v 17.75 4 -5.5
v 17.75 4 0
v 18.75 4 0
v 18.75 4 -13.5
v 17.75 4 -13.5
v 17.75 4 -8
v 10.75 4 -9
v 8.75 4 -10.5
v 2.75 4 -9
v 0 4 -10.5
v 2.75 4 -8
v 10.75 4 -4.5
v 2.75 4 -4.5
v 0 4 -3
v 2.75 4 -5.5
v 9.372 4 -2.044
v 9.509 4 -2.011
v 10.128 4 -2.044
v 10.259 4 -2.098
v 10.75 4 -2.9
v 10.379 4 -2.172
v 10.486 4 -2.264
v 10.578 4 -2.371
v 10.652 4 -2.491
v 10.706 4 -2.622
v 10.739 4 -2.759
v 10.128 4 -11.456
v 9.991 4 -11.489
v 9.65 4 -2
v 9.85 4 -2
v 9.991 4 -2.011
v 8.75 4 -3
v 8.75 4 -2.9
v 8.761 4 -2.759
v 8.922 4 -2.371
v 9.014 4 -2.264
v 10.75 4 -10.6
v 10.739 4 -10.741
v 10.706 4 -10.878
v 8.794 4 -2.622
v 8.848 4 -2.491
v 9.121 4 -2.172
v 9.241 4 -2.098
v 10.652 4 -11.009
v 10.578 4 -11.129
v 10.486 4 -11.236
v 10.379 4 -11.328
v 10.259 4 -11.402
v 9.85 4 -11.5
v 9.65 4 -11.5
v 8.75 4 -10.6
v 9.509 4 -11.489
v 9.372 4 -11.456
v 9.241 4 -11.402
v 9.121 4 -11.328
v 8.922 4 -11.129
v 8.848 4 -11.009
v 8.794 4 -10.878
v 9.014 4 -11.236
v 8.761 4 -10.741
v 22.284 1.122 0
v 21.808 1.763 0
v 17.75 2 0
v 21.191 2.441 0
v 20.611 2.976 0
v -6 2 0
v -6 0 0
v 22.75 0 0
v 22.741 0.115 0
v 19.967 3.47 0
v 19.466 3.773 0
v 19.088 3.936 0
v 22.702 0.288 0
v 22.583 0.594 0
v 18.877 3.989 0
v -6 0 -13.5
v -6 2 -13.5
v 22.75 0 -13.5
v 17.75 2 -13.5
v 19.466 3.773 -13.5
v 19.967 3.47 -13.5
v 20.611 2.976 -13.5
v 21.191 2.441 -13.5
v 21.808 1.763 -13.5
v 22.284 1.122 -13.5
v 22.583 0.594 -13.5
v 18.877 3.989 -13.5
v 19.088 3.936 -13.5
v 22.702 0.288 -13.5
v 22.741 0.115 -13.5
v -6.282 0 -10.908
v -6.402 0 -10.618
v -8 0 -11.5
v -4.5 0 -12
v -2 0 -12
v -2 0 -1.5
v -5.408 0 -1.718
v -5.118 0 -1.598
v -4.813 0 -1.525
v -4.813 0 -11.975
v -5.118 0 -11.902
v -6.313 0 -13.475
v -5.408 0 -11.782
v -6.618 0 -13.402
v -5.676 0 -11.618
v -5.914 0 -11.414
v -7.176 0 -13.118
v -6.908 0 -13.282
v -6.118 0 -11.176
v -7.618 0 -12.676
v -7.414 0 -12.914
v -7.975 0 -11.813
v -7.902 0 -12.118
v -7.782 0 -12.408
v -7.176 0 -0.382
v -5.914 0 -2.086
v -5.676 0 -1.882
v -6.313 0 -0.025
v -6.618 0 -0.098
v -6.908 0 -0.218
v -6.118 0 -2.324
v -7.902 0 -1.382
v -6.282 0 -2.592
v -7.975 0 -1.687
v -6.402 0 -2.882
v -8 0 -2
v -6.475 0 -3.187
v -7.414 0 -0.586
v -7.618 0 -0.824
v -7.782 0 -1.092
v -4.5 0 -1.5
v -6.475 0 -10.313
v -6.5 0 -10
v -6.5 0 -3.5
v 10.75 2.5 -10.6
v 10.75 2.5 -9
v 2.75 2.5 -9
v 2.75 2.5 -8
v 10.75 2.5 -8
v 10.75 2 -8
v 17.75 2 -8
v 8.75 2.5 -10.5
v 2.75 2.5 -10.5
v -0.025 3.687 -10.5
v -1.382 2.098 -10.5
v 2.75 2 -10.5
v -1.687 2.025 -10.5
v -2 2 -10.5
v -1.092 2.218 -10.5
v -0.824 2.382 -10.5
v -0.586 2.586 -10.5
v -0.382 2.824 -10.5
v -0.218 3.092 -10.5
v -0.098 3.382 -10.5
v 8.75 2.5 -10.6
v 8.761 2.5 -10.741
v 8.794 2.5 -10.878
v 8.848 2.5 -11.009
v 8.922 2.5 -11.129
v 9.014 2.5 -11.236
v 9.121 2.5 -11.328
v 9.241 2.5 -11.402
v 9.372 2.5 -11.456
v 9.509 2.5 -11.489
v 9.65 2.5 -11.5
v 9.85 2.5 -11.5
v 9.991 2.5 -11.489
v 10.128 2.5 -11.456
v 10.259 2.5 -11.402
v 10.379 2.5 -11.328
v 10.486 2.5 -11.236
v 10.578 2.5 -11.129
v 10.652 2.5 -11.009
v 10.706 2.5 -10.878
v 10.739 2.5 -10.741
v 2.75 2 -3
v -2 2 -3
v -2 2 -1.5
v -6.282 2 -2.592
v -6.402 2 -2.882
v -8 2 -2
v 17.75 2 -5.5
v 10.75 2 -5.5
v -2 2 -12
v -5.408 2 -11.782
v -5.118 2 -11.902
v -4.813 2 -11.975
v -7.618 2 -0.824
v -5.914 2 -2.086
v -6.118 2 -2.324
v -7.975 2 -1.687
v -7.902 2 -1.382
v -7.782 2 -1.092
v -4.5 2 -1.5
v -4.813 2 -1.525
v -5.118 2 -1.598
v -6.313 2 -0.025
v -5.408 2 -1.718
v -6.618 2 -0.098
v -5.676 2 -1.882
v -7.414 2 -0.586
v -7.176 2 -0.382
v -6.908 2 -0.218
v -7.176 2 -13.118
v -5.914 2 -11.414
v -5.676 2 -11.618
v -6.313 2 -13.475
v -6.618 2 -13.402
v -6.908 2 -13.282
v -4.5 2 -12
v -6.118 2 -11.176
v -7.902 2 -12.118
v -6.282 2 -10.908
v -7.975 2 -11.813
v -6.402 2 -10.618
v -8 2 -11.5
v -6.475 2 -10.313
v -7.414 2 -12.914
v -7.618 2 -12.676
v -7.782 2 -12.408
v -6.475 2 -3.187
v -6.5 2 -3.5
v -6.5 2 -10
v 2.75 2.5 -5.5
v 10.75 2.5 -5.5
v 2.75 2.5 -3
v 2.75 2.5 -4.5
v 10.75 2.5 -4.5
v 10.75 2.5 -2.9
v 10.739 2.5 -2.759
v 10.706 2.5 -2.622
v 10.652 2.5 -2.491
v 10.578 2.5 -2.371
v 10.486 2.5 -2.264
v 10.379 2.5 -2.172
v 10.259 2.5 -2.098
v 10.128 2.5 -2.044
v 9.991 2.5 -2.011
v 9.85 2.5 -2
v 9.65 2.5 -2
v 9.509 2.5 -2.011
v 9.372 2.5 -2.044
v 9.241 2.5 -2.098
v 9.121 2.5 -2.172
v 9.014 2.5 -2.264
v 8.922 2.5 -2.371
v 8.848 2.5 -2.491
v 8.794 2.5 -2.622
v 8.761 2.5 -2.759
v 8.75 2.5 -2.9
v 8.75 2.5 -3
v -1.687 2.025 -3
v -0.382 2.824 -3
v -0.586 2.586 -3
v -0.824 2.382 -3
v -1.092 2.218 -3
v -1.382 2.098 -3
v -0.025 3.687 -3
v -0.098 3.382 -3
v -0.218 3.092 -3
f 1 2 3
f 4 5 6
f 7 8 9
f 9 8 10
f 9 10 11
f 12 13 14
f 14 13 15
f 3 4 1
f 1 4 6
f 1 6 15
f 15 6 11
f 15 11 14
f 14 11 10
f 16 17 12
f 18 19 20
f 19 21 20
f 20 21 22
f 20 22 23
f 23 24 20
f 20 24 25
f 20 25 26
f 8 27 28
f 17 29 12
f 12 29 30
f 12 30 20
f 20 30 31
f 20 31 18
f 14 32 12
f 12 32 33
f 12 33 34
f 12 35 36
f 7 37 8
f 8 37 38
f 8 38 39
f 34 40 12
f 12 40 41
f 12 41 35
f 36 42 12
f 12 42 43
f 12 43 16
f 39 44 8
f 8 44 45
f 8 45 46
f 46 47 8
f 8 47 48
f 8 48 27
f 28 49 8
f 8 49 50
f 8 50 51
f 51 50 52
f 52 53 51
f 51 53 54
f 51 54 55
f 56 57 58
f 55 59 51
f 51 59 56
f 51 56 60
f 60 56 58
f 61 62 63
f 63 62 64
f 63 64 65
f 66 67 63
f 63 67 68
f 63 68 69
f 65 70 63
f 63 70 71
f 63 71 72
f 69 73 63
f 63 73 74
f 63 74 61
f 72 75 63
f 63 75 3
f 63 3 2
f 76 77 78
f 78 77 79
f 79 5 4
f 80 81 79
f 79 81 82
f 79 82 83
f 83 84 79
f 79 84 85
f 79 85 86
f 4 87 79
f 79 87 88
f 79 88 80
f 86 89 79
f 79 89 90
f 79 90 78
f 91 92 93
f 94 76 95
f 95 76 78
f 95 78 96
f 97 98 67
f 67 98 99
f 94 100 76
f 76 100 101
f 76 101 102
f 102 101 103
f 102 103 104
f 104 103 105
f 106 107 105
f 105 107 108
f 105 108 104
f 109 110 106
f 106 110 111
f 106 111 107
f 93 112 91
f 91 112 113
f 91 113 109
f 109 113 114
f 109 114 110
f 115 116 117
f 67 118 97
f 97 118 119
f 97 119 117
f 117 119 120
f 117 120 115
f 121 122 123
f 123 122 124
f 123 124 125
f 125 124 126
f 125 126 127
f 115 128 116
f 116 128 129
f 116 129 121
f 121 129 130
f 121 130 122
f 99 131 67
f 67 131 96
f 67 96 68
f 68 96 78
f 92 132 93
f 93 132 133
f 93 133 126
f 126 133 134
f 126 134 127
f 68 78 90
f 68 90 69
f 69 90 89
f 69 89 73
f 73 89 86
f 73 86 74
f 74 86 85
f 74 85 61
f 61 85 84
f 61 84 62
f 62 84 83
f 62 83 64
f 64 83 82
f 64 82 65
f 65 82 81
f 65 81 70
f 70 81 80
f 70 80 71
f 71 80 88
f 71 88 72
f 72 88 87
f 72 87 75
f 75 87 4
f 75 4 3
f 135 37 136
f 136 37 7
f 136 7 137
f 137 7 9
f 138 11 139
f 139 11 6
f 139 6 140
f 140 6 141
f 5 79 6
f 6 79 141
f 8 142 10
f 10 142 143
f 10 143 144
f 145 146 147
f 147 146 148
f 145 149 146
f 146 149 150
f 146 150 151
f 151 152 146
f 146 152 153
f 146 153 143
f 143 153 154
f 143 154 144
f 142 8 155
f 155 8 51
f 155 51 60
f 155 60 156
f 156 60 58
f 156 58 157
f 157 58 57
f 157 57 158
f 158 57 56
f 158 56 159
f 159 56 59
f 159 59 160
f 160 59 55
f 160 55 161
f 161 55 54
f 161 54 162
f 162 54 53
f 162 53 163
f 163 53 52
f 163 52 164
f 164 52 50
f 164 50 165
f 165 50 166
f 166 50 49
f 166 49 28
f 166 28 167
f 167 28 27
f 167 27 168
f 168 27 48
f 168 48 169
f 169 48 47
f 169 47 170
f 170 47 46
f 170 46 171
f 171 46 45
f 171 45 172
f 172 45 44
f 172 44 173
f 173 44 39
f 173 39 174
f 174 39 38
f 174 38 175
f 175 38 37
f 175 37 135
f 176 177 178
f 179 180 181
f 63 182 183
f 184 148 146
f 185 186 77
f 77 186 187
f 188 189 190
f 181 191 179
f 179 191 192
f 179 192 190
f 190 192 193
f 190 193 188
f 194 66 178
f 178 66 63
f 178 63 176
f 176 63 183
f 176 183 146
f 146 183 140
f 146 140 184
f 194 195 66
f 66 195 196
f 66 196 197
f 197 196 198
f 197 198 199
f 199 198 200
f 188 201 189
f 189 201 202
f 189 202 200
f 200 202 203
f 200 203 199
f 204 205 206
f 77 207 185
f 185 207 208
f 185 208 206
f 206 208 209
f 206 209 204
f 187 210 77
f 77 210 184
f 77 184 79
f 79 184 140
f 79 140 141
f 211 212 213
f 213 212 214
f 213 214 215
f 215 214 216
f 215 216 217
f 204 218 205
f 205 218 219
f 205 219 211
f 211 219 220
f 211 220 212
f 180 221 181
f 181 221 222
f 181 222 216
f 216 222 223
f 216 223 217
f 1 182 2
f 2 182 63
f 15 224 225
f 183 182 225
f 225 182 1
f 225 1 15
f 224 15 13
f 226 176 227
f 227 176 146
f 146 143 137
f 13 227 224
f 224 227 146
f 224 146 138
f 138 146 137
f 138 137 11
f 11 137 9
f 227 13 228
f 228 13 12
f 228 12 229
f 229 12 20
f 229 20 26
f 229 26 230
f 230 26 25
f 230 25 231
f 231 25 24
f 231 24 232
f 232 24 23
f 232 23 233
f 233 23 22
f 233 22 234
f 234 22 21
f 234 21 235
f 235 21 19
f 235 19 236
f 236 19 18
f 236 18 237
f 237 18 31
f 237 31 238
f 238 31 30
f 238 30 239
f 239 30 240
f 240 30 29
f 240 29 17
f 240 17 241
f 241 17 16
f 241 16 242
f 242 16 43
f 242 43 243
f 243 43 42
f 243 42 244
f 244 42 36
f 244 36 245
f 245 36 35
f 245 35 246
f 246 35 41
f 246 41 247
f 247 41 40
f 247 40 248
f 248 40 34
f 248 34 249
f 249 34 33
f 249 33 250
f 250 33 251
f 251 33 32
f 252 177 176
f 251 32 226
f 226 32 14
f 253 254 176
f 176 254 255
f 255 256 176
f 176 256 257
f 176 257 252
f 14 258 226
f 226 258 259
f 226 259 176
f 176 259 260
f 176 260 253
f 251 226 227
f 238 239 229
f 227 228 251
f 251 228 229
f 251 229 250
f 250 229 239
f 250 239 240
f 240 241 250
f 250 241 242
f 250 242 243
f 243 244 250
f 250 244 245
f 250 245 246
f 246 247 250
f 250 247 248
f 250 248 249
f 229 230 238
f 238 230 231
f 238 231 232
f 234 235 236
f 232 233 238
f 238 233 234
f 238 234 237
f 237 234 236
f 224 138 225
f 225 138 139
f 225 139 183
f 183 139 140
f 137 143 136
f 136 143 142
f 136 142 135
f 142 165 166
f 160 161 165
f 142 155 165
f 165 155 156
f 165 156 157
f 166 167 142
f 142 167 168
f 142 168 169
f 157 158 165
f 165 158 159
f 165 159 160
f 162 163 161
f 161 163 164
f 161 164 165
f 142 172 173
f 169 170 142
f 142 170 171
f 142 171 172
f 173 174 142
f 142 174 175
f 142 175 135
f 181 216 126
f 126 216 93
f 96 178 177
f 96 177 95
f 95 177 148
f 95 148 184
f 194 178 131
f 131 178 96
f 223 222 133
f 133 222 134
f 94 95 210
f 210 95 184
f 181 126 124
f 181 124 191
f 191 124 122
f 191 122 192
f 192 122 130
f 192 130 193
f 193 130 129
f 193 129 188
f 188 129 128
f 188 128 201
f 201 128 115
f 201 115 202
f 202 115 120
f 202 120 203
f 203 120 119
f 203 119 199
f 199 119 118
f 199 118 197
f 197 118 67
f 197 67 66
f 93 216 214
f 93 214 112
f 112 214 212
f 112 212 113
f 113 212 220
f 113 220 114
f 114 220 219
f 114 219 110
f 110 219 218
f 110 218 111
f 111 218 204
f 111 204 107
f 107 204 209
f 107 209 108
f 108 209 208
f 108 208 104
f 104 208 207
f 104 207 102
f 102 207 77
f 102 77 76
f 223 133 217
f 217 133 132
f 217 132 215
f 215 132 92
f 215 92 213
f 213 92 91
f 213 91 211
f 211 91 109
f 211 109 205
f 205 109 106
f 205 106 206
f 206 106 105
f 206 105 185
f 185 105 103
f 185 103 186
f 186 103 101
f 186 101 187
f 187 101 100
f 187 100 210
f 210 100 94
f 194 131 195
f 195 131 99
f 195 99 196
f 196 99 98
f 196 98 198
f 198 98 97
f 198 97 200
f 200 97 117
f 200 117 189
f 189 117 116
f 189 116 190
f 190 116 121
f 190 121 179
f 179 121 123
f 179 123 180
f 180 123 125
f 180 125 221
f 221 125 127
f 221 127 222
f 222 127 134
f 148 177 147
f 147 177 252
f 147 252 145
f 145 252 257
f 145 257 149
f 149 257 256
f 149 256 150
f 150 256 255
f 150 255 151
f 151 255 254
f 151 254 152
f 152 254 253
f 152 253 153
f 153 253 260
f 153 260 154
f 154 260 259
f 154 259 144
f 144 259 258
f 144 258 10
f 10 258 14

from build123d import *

# Parameters (mm, degrees)
SKETCH1_W               = 22.75
SKETCH1_H               = 13.5
BOSS_EXTRUDE1_DEPTH     = 4
FILLET1_SIZE            = 4
CUT_EXTRUDE1_DEPTH      = 2
CUT_EXTRUDE2_DEPTH      = 25.445091674
CUT_EXTRUDE2_DEPTH_BACK = 25.445091674
SKETCH5_W               = 8
SKETCH5_H               = 0.5
SKETCH4_W               = 13.5
SKETCH4_H               = 2
BOSS_EXTRUDE2_DEPTH     = 8
SKETCH6_W               = 4.5
SKETCH6_H               = 10.5
CUT_EXTRUDE3_DEPTH      = 27.529464896
FILLET3_R               = 2


# Some blends are built 0.0001 mm under size
with BuildPart() as part:
    # Sketch1 → Boss-Extrude1 (new body)
    with BuildSketch(Plane(origin=(0, 0, 0), x_dir=(1, 0, 0), z_dir=(0, 1, 0))):
        with Locations((11.375, 6.75)):
            Rectangle(SKETCH1_W, SKETCH1_H)
    extrude(amount=BOSS_EXTRUDE1_DEPTH)

    # Fillet1
    # a fillet whose section is not a circle: 4 mm, written as the material it takes off along each edge
    with BuildSketch(Plane(origin=(22.75, 4, 10), x_dir=(0, -1, 0), z_dir=(0, 0, -1))) as fillet1_piece_1:
        with BuildLine():
            Bezier((FILLET1_SIZE, 0), (0, 0), (0, FILLET1_SIZE), weights=[1, 0.282842712, 1])
            Line((0, FILLET1_SIZE), (0, 0))
            Line((0, 0), (FILLET1_SIZE, 0))
        make_face()
    extrude(amount=33.5, mode=Mode.SUBTRACT)

    # Sketch2 → Cut-Extrude1 (cut)
    with BuildSketch(Plane(origin=(0, 4, 0), x_dir=(1, 0, 0), z_dir=(0, 1, 0))):
        with BuildLine():
            Line((17.75, 0), (17.75, 5.5))
            Line((17.75, 5.5), (2.75, 5.5))
            Line((2.75, 5.5), (2.75, 4.5))
            Line((2.75, 4.5), (10.75, 4.5))
            Line((10.75, 4.5), (10.75, 2.9))
            ThreePointArc((10.75, 2.9), (10.486396103, 2.263603897), (9.85, 2))
            Line((9.85, 2), (9.65, 2))
            ThreePointArc((9.65, 2), (9.013603897, 2.263603897), (8.75, 2.9))
            Line((8.75, 2.9), (8.75, 3))
            Line((8.75, 3), (0, 3))
            Line((0, 3), (0, 0))
            Line((0, 0), (17.75, 0))
        make_face()
        with BuildLine():
            Line((0, 10.5), (0, 13.5))
            Line((0, 13.5), (17.75, 13.5))
            Line((17.75, 13.5), (17.75, 8))
            Line((17.75, 8), (2.75, 8))
            Line((2.75, 8), (2.75, 9))
            Line((2.75, 9), (10.75, 9))
            Line((10.75, 9), (10.75, 10.6))
            ThreePointArc((10.75, 10.6), (10.486396103, 11.236396103), (9.85, 11.5))
            Line((9.85, 11.5), (9.65, 11.5))
            ThreePointArc((9.65, 11.5), (9.013603897, 11.236396103), (8.75, 10.6))
            Line((8.75, 10.6), (8.75, 10.5))
            Line((8.75, 10.5), (0, 10.5))
        make_face()
    extrude(amount=-CUT_EXTRUDE1_DEPTH, mode=Mode.SUBTRACT)

    # Sketch5 → Cut-Extrude2 (cut, two sides: drawn at the far end of the back side and taken through both)
    with BuildSketch(Plane(origin=(0, 0, -8), x_dir=(-1, 0, 0), z_dir=(0, 0, -1)).offset(-CUT_EXTRUDE2_DEPTH_BACK)):
        with Locations((-6.75, 2.25)):
            Rectangle(SKETCH5_W, SKETCH5_H)
    extrude(amount=CUT_EXTRUDE2_DEPTH + CUT_EXTRUDE2_DEPTH_BACK, mode=Mode.SUBTRACT)

    # Sketch4 → Boss-Extrude2 (add)
    with BuildSketch(Plane.ZY):
        with Locations((-6.75, 1)):
            Rectangle(SKETCH4_W, SKETCH4_H)
    extrude(amount=BOSS_EXTRUDE2_DEPTH)

    # Sketch6 → Cut-Extrude3 (cut, through all)
    with BuildSketch(Plane(origin=(0, 2, 0), x_dir=(1, 0, 0), z_dir=(0, 1, 0))):
        with Locations((-4.25, 6.75)):
            Rectangle(SKETCH6_W, SKETCH6_H)
    extrude(amount=-CUT_EXTRUDE3_DEPTH, mode=Mode.SUBTRACT)

    # Fillet3
    fillet3_edges = [part.edges().sort_by_distance(p)[0] for p in [
        (-8, 1, 0),
        (-8, 1, -13.5),
        (-6.5, 1, -12),
        (-6.5, 1, -1.5),
        (0, 2, -6.75),
    ]]
    fillet(fillet3_edges, radius=FILLET3_R - 0.0001)  # a hair under: the kernel refuses the full size


solid = part.part
